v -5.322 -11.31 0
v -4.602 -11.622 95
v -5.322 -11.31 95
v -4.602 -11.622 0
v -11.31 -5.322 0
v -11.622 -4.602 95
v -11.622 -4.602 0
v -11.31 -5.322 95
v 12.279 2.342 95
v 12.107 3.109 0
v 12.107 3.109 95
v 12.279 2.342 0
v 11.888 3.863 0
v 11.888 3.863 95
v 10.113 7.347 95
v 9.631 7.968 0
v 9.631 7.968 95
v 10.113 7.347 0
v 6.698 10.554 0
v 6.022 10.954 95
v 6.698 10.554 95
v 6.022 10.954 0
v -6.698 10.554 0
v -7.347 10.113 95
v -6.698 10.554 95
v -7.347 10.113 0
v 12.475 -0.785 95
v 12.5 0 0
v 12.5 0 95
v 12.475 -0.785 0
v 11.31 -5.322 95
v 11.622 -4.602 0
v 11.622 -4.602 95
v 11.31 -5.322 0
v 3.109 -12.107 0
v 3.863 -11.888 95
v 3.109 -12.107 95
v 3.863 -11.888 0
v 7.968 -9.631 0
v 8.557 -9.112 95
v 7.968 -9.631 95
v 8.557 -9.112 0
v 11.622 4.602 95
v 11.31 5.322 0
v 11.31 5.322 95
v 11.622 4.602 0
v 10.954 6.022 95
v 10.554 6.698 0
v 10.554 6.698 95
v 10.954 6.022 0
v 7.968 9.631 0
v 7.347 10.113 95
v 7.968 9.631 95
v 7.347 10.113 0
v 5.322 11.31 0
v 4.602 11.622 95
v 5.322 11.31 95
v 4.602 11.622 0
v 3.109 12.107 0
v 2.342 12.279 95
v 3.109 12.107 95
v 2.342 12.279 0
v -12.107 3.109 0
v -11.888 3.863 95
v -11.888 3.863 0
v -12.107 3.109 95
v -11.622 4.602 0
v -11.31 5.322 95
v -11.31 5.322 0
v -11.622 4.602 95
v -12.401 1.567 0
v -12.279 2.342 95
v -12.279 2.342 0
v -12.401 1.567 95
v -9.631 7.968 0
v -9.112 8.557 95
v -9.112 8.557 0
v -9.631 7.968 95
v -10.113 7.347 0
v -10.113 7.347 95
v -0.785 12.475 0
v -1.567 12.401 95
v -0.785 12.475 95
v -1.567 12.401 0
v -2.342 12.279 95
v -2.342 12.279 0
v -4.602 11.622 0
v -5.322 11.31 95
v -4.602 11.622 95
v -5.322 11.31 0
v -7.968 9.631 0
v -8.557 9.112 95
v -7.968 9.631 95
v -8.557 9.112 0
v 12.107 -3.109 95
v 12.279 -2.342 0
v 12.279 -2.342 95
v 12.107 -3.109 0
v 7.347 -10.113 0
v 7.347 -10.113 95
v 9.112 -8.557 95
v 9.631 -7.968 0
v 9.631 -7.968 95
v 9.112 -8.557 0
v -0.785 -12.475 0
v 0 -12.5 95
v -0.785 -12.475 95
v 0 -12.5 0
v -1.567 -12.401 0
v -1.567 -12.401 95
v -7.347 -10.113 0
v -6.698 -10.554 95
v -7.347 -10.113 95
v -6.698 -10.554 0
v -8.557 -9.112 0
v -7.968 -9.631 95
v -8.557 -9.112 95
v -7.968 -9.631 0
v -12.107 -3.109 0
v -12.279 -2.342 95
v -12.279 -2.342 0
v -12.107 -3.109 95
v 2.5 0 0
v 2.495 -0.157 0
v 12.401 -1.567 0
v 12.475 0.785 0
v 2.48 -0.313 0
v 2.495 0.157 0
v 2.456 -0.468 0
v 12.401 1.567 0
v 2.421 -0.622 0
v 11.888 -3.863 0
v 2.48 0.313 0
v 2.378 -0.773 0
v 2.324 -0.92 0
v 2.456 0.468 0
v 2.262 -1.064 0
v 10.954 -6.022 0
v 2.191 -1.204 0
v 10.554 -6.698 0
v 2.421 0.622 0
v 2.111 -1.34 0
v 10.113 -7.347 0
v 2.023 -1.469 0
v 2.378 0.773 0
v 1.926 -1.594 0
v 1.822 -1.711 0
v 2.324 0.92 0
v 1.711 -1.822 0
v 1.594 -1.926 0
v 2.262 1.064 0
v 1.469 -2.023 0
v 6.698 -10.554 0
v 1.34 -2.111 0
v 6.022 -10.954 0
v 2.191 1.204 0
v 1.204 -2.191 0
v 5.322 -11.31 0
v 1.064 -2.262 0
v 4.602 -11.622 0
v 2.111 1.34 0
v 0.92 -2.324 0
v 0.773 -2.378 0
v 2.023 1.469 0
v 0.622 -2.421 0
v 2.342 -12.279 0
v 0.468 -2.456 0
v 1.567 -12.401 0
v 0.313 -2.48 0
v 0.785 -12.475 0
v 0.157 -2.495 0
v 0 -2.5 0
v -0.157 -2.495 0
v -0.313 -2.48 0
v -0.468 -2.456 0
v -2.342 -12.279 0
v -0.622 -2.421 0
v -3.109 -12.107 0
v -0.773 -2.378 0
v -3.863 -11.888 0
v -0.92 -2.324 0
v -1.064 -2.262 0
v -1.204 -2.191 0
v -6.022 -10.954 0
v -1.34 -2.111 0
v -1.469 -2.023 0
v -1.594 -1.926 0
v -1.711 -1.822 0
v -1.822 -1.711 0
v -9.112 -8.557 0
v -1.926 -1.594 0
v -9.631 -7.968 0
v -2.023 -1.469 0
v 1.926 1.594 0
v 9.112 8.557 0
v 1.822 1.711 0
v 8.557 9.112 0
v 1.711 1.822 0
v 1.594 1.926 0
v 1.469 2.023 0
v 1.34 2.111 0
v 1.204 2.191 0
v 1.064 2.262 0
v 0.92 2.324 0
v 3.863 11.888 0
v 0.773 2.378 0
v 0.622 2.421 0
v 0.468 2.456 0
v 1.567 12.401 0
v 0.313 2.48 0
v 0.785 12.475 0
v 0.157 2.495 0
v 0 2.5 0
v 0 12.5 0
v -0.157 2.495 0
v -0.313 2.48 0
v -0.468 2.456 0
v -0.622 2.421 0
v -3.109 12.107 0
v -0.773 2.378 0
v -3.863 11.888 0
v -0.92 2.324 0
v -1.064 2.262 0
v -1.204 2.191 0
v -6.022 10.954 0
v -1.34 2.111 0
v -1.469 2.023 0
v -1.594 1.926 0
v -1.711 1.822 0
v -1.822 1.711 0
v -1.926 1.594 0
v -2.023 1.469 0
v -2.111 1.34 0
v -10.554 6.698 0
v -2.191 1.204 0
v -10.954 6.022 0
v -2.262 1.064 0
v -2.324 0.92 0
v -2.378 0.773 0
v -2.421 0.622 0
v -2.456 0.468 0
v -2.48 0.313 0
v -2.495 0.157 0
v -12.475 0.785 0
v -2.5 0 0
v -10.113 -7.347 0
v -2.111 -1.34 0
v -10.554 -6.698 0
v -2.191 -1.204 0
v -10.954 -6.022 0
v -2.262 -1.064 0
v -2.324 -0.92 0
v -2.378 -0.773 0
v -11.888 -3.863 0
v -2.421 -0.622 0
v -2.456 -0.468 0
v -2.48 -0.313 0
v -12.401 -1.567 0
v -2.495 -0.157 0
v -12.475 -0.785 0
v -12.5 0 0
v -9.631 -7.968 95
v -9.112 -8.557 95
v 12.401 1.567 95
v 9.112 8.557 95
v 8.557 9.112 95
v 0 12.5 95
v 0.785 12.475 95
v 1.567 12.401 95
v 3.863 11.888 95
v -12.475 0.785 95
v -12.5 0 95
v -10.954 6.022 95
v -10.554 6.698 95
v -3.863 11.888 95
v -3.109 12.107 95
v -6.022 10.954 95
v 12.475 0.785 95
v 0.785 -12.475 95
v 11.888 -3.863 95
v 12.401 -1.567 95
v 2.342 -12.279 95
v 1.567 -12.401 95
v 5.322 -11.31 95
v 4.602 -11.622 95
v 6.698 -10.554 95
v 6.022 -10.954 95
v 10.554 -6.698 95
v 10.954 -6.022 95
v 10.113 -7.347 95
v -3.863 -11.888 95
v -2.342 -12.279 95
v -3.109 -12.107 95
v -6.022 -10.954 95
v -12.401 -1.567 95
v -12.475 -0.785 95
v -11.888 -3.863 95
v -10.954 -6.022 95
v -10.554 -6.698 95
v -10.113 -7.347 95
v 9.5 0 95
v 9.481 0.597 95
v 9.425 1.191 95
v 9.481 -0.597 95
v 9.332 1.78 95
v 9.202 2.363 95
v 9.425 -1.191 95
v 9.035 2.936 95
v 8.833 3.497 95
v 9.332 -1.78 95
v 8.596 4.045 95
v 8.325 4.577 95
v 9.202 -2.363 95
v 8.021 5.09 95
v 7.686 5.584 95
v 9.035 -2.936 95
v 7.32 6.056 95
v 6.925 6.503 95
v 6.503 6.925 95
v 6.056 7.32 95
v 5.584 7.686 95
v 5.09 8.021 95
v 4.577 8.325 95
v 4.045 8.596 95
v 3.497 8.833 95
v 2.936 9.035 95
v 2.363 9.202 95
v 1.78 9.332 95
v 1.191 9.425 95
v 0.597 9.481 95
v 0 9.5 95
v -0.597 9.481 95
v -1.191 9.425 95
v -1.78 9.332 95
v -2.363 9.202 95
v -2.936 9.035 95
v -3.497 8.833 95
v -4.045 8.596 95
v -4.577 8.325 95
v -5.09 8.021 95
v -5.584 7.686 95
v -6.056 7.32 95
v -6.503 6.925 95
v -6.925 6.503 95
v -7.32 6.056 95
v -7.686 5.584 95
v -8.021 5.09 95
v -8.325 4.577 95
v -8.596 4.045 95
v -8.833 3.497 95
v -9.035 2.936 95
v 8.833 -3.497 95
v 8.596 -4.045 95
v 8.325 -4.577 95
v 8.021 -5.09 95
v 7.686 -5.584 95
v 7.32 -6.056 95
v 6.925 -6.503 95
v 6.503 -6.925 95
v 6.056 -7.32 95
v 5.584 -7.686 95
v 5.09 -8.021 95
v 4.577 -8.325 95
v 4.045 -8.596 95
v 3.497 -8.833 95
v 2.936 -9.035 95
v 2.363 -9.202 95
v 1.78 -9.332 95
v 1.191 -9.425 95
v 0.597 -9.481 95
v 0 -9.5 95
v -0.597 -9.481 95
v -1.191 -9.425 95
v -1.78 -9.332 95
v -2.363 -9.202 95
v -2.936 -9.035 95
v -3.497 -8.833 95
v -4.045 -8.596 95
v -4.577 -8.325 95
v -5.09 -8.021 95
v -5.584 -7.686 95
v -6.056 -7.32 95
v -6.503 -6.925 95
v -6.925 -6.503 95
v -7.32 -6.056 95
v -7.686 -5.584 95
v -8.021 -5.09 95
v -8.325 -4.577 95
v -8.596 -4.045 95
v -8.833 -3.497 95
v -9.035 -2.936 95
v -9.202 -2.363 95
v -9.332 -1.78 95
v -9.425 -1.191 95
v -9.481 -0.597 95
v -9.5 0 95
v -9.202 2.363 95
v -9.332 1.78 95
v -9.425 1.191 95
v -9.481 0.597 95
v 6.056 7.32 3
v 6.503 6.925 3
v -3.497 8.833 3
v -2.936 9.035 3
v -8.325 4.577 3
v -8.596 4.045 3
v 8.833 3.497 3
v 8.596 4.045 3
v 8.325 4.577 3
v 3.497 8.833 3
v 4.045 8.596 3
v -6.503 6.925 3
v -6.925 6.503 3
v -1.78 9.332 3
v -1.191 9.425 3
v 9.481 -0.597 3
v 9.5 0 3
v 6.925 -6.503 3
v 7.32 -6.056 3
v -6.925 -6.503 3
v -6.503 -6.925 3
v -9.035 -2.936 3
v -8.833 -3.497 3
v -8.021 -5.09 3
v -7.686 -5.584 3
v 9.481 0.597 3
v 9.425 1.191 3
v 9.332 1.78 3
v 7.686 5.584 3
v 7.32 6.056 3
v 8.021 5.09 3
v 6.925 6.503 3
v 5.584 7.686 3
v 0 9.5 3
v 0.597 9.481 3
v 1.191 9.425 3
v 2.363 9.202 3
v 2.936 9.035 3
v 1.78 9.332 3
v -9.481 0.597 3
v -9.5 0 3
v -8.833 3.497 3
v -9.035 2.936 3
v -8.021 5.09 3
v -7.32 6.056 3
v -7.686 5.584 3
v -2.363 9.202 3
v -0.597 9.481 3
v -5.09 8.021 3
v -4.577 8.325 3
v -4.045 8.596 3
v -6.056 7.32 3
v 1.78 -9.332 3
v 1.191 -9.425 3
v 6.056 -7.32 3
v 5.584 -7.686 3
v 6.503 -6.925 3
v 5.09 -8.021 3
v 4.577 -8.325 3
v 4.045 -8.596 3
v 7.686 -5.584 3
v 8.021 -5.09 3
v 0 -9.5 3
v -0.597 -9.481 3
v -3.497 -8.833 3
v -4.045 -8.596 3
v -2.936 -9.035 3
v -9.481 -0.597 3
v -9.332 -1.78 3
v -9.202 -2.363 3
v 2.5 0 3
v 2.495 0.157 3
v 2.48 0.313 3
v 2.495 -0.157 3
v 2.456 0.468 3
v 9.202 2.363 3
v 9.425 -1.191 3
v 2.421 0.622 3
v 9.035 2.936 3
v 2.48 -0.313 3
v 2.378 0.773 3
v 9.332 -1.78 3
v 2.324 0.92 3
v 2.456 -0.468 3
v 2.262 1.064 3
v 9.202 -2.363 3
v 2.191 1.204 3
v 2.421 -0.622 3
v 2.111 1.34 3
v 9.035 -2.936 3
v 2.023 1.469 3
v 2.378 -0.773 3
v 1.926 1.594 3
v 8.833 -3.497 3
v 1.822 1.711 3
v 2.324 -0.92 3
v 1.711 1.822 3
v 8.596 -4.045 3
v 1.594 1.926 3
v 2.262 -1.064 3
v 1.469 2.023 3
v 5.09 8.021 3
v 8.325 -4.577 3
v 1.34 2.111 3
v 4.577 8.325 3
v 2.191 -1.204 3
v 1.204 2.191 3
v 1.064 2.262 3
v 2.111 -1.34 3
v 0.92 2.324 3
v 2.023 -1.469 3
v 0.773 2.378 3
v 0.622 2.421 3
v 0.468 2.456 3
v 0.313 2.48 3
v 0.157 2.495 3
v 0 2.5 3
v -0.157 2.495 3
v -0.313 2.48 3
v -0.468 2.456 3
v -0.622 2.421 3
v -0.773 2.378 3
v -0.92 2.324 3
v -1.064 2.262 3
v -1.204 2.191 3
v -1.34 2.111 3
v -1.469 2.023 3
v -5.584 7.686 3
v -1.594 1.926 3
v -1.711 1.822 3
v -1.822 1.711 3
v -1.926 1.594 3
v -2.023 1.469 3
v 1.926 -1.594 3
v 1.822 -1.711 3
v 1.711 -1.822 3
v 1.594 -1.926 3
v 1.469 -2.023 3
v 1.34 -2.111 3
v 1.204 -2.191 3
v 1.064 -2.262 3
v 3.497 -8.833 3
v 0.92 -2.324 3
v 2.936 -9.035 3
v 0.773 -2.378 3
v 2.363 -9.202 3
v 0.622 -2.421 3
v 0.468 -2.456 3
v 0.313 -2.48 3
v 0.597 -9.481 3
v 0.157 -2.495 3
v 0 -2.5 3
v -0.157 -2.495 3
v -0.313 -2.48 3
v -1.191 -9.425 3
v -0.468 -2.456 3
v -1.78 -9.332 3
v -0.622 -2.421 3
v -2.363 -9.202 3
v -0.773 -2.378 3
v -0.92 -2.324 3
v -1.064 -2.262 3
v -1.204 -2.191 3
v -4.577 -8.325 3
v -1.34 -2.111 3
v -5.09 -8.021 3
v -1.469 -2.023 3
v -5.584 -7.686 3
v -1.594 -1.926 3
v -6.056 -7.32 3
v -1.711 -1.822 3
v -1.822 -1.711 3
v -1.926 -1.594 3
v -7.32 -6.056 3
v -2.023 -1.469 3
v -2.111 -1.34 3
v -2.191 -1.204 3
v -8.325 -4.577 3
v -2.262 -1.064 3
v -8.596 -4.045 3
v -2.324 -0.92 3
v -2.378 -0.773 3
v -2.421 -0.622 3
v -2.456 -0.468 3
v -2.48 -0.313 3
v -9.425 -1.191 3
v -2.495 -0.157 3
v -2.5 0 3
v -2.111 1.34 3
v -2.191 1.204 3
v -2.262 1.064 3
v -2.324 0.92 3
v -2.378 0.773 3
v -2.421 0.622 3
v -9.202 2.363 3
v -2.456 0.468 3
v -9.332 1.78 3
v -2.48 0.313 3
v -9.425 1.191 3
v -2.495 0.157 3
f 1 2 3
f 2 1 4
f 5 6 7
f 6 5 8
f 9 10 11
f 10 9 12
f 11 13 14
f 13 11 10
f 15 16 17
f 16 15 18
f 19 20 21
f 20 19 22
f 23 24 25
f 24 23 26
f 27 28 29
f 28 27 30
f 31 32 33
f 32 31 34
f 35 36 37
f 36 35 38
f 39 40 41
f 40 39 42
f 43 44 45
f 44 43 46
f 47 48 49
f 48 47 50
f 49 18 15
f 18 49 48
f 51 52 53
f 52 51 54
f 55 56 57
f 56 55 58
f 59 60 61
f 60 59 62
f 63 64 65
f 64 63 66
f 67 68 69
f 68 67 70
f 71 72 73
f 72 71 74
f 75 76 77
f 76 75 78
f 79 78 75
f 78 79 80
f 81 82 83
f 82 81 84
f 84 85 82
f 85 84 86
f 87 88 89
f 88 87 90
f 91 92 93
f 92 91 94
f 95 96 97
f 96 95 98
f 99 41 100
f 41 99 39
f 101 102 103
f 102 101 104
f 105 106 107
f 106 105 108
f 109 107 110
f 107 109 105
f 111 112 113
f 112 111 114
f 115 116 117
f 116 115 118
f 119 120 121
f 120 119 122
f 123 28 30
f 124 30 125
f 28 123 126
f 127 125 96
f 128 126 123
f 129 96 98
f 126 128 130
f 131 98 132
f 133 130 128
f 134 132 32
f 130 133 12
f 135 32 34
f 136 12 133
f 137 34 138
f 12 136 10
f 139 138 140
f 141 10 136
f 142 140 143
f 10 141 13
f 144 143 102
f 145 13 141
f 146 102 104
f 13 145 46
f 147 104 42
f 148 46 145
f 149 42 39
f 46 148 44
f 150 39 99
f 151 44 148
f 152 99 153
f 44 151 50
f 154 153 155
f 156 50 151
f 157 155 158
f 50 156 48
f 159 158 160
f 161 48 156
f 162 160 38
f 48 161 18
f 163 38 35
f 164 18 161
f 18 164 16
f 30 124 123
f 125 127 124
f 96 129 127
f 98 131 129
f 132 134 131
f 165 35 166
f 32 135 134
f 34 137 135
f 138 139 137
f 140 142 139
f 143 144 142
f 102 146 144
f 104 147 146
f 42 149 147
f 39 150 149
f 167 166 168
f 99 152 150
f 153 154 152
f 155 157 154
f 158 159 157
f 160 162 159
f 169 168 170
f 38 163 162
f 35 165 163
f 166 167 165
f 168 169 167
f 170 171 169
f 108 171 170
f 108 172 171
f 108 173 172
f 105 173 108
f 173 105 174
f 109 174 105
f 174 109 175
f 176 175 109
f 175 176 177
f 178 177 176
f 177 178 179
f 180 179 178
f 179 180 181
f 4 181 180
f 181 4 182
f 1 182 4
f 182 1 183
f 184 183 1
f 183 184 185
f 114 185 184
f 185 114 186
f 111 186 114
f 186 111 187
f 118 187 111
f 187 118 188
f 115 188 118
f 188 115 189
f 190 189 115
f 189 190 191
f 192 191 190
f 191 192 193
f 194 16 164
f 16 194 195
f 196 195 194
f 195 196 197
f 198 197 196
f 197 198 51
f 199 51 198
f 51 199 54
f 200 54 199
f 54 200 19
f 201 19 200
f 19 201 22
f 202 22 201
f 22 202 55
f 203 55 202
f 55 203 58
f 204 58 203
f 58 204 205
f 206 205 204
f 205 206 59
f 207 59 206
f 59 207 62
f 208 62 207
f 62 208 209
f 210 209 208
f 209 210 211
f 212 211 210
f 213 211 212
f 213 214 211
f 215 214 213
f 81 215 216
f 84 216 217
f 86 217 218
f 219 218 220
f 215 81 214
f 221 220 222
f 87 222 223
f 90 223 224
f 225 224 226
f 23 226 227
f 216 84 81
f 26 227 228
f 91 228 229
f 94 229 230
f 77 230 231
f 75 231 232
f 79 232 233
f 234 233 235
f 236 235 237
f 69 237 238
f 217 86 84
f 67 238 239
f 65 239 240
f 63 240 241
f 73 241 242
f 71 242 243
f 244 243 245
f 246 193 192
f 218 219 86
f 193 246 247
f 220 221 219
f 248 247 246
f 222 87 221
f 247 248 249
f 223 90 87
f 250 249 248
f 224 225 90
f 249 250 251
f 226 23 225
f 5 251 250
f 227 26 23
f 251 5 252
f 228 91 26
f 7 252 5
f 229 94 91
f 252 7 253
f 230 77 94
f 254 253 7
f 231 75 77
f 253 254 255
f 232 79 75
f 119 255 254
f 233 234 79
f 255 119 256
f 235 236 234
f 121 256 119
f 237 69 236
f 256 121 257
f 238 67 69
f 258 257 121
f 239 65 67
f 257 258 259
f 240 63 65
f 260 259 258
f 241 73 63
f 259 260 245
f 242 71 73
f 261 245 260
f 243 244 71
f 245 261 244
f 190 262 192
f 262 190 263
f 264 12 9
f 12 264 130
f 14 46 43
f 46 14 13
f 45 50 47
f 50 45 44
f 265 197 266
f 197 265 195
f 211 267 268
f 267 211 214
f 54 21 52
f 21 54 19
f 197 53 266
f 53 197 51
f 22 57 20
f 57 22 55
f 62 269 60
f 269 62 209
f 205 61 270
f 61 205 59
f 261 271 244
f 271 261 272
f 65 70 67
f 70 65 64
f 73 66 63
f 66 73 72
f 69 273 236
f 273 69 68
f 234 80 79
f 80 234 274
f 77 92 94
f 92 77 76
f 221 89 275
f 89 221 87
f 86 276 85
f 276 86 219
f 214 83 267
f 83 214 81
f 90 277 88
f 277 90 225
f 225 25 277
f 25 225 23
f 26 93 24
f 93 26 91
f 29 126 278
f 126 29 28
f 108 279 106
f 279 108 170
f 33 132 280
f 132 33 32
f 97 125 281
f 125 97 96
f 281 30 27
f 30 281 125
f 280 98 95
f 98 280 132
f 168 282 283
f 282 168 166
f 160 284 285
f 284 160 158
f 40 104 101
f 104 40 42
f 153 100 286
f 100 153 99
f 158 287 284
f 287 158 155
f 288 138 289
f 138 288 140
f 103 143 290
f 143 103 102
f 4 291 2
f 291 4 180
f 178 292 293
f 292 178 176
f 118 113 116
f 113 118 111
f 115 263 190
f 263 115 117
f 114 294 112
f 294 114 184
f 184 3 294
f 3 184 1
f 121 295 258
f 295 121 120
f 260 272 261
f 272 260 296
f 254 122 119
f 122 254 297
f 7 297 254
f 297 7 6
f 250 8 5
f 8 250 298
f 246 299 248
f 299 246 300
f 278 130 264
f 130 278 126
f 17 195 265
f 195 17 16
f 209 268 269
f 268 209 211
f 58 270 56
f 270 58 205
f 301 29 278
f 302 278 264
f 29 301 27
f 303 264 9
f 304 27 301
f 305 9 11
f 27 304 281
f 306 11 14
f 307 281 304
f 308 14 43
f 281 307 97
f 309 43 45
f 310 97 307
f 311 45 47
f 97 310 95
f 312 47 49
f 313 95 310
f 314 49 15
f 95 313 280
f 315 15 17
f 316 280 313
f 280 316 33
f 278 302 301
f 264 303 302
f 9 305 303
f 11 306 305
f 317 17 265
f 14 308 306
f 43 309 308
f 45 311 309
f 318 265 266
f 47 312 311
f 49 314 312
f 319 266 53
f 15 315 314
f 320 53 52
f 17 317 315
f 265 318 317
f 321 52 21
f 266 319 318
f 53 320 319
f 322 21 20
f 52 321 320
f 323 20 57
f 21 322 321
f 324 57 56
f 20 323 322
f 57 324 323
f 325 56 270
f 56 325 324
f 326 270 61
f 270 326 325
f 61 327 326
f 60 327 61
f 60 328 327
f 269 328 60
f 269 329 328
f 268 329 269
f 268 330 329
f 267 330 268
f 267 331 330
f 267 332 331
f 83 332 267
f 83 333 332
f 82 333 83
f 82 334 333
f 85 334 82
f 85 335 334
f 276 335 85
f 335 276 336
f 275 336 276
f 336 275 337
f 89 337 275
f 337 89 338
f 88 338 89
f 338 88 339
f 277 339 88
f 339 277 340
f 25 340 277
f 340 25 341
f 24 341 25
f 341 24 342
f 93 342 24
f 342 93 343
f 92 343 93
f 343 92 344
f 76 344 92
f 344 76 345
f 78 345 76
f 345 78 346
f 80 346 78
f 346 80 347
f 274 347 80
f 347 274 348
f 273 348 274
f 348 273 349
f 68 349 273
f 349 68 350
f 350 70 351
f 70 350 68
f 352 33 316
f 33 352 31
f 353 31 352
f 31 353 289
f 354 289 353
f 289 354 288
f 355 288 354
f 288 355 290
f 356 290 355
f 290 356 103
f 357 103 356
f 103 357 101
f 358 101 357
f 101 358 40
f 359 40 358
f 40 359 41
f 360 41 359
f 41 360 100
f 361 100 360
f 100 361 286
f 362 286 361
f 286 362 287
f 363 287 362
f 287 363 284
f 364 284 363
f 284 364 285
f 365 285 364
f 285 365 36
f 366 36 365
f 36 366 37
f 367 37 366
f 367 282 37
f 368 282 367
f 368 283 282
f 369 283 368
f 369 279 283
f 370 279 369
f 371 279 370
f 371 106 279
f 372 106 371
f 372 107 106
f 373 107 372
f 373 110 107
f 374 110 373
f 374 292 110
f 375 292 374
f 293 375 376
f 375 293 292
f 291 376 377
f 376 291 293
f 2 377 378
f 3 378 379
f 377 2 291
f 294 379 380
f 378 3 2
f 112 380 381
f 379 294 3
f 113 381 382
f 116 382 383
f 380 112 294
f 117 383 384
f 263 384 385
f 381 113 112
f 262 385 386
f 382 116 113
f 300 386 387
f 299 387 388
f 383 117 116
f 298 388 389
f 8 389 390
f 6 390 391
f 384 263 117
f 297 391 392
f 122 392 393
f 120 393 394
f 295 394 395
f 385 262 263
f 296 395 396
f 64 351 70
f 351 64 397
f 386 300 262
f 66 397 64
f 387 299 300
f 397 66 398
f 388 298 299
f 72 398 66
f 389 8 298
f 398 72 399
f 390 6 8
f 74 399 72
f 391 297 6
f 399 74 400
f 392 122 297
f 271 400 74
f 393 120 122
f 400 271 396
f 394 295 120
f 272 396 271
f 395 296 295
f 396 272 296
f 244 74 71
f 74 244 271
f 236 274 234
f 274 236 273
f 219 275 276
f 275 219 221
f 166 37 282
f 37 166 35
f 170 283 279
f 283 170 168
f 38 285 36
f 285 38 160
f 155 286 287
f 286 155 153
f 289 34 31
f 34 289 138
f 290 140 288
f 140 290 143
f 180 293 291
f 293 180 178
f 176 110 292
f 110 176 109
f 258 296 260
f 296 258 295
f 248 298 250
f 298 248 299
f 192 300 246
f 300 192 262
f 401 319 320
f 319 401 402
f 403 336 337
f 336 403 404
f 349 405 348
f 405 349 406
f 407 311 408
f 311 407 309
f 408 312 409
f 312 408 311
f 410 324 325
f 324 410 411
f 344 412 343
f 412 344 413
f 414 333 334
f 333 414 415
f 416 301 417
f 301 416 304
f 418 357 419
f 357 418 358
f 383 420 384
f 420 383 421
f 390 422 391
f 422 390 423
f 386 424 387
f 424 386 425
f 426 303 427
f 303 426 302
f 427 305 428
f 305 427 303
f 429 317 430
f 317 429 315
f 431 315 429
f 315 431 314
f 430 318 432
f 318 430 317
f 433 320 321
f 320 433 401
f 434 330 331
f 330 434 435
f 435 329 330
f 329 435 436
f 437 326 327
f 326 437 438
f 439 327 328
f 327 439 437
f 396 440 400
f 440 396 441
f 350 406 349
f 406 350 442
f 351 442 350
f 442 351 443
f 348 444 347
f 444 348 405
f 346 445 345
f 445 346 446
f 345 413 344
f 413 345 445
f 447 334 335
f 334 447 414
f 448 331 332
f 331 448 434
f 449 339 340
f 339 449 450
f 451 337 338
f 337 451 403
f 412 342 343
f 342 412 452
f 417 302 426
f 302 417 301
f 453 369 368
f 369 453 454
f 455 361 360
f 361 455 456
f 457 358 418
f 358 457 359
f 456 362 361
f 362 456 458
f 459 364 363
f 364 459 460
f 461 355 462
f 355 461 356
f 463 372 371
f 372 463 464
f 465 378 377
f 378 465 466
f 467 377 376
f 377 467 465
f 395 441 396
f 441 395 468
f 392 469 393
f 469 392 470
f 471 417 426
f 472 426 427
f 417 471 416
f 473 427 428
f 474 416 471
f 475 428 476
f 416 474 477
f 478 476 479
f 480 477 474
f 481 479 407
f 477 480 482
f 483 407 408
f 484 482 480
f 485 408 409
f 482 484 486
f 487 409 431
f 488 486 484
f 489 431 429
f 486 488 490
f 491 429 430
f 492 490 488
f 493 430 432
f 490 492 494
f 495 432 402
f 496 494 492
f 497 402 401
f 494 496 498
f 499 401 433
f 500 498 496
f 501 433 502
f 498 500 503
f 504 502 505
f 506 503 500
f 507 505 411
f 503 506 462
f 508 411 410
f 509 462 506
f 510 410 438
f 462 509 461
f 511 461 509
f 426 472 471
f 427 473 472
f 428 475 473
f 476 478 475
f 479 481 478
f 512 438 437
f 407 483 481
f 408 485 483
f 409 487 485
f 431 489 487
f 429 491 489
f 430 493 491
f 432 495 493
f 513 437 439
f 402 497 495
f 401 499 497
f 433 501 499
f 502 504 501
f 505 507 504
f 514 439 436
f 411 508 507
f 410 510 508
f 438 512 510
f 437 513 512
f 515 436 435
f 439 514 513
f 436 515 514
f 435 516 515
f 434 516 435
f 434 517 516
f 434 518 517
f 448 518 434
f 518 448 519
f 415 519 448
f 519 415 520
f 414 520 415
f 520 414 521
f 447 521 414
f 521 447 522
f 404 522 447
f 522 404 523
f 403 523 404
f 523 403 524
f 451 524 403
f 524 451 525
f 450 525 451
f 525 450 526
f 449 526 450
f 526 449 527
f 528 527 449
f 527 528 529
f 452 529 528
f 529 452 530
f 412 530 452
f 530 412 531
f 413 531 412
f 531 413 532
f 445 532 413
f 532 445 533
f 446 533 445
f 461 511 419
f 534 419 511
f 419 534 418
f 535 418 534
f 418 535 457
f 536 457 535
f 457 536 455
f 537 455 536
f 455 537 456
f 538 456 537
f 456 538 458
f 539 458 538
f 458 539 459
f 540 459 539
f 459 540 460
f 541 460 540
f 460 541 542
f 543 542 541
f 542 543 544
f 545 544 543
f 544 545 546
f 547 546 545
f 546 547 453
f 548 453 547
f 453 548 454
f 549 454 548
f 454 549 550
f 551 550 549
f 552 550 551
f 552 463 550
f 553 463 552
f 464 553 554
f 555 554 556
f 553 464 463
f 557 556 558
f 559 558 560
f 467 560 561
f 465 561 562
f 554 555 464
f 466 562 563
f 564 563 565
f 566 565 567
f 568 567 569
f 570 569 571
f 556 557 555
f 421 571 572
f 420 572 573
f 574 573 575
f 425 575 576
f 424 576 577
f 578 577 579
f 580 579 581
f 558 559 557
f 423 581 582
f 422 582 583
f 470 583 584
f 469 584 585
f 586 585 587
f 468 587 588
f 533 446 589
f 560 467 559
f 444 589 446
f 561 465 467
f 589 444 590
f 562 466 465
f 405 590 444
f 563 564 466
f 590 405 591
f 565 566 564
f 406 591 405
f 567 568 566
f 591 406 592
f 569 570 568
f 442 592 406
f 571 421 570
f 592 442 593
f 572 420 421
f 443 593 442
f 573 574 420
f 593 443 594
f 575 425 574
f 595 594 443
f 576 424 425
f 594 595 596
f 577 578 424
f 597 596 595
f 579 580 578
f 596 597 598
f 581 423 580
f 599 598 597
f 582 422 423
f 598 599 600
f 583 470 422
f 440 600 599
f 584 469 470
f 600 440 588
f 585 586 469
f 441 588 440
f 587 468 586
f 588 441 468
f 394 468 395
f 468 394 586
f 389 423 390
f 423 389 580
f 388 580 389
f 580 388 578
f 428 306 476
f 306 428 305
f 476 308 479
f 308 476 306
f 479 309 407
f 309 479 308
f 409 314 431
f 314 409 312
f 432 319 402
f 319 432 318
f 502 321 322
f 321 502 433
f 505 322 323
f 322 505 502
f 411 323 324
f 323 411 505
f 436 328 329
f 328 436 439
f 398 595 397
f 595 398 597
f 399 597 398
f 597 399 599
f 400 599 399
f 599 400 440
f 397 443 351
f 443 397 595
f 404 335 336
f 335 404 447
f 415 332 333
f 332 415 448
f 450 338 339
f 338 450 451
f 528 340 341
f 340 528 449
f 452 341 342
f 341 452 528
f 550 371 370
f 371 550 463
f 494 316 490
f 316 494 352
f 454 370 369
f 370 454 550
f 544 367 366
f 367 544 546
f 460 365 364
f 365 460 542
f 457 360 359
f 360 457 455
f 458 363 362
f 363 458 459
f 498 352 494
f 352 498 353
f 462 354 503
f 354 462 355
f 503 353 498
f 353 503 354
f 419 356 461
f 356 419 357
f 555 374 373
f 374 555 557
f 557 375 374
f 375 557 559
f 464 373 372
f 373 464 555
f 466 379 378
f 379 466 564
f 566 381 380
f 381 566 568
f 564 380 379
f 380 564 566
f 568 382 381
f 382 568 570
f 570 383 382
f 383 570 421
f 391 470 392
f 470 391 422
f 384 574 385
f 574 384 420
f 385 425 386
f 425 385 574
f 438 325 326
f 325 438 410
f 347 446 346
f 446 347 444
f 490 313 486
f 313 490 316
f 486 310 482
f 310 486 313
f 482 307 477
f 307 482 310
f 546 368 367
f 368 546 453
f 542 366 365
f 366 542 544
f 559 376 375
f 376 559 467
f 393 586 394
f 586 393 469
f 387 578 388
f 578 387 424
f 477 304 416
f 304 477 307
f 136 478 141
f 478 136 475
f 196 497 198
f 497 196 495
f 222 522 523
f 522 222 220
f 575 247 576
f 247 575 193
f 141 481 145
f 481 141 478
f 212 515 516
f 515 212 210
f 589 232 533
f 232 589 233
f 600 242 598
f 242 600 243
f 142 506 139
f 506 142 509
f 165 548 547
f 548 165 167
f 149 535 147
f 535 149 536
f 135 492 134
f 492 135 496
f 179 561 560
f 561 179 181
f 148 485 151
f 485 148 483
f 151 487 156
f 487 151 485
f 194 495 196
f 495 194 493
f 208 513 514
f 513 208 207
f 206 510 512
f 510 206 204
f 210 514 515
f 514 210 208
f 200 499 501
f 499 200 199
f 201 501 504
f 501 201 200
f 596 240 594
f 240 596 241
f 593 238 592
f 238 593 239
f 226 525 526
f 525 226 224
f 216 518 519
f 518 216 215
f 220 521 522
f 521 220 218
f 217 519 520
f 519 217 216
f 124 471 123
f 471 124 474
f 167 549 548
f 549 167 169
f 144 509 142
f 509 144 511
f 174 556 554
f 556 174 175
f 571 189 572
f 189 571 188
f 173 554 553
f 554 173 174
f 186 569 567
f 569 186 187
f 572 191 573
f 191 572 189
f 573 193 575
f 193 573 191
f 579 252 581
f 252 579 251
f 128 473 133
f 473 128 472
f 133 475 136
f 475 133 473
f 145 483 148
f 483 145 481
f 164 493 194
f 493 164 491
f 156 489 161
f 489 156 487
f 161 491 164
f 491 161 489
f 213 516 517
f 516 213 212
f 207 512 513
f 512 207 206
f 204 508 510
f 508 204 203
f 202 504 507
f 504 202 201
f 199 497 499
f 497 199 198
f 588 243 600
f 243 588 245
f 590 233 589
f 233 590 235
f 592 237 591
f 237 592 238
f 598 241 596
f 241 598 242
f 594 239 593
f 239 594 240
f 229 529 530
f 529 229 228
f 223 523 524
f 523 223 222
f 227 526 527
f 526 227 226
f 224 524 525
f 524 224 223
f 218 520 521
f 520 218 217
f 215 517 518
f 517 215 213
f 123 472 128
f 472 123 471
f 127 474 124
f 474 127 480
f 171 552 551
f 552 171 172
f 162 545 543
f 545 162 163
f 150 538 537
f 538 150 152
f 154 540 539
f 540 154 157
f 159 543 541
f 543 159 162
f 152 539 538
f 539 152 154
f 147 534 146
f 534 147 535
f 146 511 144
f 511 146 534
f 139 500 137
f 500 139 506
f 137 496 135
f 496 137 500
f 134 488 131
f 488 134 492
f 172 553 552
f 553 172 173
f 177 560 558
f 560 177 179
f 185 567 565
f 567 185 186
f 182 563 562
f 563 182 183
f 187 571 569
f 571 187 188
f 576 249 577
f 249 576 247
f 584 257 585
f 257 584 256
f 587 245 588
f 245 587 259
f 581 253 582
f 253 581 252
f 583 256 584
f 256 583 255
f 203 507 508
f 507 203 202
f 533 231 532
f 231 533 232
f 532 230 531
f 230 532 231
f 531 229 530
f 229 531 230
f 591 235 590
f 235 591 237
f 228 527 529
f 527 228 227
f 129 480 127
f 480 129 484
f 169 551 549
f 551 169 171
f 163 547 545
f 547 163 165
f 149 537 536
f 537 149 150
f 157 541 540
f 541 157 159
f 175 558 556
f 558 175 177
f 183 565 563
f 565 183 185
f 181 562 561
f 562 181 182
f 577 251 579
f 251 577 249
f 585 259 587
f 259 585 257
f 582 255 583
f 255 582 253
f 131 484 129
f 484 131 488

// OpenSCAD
//fn=numb of fragments; fa=min angle; fs=min size

$fn=100;
$fa=12;
$fs=2;

//Soporte
Rs=12.5;
Hs=95;
Rm=2.5;
Hm=3;
Rt=9.5;

//Base
Rb=50;
Hb=12;

Hi=10;


difference(){
    cylinder(Hs,Rs,Rs,false);
    translate([0,0,Hm])cylinder(Hs,Rt,Rt);
    cylinder(Hm,Rm,Rm,false);
}
